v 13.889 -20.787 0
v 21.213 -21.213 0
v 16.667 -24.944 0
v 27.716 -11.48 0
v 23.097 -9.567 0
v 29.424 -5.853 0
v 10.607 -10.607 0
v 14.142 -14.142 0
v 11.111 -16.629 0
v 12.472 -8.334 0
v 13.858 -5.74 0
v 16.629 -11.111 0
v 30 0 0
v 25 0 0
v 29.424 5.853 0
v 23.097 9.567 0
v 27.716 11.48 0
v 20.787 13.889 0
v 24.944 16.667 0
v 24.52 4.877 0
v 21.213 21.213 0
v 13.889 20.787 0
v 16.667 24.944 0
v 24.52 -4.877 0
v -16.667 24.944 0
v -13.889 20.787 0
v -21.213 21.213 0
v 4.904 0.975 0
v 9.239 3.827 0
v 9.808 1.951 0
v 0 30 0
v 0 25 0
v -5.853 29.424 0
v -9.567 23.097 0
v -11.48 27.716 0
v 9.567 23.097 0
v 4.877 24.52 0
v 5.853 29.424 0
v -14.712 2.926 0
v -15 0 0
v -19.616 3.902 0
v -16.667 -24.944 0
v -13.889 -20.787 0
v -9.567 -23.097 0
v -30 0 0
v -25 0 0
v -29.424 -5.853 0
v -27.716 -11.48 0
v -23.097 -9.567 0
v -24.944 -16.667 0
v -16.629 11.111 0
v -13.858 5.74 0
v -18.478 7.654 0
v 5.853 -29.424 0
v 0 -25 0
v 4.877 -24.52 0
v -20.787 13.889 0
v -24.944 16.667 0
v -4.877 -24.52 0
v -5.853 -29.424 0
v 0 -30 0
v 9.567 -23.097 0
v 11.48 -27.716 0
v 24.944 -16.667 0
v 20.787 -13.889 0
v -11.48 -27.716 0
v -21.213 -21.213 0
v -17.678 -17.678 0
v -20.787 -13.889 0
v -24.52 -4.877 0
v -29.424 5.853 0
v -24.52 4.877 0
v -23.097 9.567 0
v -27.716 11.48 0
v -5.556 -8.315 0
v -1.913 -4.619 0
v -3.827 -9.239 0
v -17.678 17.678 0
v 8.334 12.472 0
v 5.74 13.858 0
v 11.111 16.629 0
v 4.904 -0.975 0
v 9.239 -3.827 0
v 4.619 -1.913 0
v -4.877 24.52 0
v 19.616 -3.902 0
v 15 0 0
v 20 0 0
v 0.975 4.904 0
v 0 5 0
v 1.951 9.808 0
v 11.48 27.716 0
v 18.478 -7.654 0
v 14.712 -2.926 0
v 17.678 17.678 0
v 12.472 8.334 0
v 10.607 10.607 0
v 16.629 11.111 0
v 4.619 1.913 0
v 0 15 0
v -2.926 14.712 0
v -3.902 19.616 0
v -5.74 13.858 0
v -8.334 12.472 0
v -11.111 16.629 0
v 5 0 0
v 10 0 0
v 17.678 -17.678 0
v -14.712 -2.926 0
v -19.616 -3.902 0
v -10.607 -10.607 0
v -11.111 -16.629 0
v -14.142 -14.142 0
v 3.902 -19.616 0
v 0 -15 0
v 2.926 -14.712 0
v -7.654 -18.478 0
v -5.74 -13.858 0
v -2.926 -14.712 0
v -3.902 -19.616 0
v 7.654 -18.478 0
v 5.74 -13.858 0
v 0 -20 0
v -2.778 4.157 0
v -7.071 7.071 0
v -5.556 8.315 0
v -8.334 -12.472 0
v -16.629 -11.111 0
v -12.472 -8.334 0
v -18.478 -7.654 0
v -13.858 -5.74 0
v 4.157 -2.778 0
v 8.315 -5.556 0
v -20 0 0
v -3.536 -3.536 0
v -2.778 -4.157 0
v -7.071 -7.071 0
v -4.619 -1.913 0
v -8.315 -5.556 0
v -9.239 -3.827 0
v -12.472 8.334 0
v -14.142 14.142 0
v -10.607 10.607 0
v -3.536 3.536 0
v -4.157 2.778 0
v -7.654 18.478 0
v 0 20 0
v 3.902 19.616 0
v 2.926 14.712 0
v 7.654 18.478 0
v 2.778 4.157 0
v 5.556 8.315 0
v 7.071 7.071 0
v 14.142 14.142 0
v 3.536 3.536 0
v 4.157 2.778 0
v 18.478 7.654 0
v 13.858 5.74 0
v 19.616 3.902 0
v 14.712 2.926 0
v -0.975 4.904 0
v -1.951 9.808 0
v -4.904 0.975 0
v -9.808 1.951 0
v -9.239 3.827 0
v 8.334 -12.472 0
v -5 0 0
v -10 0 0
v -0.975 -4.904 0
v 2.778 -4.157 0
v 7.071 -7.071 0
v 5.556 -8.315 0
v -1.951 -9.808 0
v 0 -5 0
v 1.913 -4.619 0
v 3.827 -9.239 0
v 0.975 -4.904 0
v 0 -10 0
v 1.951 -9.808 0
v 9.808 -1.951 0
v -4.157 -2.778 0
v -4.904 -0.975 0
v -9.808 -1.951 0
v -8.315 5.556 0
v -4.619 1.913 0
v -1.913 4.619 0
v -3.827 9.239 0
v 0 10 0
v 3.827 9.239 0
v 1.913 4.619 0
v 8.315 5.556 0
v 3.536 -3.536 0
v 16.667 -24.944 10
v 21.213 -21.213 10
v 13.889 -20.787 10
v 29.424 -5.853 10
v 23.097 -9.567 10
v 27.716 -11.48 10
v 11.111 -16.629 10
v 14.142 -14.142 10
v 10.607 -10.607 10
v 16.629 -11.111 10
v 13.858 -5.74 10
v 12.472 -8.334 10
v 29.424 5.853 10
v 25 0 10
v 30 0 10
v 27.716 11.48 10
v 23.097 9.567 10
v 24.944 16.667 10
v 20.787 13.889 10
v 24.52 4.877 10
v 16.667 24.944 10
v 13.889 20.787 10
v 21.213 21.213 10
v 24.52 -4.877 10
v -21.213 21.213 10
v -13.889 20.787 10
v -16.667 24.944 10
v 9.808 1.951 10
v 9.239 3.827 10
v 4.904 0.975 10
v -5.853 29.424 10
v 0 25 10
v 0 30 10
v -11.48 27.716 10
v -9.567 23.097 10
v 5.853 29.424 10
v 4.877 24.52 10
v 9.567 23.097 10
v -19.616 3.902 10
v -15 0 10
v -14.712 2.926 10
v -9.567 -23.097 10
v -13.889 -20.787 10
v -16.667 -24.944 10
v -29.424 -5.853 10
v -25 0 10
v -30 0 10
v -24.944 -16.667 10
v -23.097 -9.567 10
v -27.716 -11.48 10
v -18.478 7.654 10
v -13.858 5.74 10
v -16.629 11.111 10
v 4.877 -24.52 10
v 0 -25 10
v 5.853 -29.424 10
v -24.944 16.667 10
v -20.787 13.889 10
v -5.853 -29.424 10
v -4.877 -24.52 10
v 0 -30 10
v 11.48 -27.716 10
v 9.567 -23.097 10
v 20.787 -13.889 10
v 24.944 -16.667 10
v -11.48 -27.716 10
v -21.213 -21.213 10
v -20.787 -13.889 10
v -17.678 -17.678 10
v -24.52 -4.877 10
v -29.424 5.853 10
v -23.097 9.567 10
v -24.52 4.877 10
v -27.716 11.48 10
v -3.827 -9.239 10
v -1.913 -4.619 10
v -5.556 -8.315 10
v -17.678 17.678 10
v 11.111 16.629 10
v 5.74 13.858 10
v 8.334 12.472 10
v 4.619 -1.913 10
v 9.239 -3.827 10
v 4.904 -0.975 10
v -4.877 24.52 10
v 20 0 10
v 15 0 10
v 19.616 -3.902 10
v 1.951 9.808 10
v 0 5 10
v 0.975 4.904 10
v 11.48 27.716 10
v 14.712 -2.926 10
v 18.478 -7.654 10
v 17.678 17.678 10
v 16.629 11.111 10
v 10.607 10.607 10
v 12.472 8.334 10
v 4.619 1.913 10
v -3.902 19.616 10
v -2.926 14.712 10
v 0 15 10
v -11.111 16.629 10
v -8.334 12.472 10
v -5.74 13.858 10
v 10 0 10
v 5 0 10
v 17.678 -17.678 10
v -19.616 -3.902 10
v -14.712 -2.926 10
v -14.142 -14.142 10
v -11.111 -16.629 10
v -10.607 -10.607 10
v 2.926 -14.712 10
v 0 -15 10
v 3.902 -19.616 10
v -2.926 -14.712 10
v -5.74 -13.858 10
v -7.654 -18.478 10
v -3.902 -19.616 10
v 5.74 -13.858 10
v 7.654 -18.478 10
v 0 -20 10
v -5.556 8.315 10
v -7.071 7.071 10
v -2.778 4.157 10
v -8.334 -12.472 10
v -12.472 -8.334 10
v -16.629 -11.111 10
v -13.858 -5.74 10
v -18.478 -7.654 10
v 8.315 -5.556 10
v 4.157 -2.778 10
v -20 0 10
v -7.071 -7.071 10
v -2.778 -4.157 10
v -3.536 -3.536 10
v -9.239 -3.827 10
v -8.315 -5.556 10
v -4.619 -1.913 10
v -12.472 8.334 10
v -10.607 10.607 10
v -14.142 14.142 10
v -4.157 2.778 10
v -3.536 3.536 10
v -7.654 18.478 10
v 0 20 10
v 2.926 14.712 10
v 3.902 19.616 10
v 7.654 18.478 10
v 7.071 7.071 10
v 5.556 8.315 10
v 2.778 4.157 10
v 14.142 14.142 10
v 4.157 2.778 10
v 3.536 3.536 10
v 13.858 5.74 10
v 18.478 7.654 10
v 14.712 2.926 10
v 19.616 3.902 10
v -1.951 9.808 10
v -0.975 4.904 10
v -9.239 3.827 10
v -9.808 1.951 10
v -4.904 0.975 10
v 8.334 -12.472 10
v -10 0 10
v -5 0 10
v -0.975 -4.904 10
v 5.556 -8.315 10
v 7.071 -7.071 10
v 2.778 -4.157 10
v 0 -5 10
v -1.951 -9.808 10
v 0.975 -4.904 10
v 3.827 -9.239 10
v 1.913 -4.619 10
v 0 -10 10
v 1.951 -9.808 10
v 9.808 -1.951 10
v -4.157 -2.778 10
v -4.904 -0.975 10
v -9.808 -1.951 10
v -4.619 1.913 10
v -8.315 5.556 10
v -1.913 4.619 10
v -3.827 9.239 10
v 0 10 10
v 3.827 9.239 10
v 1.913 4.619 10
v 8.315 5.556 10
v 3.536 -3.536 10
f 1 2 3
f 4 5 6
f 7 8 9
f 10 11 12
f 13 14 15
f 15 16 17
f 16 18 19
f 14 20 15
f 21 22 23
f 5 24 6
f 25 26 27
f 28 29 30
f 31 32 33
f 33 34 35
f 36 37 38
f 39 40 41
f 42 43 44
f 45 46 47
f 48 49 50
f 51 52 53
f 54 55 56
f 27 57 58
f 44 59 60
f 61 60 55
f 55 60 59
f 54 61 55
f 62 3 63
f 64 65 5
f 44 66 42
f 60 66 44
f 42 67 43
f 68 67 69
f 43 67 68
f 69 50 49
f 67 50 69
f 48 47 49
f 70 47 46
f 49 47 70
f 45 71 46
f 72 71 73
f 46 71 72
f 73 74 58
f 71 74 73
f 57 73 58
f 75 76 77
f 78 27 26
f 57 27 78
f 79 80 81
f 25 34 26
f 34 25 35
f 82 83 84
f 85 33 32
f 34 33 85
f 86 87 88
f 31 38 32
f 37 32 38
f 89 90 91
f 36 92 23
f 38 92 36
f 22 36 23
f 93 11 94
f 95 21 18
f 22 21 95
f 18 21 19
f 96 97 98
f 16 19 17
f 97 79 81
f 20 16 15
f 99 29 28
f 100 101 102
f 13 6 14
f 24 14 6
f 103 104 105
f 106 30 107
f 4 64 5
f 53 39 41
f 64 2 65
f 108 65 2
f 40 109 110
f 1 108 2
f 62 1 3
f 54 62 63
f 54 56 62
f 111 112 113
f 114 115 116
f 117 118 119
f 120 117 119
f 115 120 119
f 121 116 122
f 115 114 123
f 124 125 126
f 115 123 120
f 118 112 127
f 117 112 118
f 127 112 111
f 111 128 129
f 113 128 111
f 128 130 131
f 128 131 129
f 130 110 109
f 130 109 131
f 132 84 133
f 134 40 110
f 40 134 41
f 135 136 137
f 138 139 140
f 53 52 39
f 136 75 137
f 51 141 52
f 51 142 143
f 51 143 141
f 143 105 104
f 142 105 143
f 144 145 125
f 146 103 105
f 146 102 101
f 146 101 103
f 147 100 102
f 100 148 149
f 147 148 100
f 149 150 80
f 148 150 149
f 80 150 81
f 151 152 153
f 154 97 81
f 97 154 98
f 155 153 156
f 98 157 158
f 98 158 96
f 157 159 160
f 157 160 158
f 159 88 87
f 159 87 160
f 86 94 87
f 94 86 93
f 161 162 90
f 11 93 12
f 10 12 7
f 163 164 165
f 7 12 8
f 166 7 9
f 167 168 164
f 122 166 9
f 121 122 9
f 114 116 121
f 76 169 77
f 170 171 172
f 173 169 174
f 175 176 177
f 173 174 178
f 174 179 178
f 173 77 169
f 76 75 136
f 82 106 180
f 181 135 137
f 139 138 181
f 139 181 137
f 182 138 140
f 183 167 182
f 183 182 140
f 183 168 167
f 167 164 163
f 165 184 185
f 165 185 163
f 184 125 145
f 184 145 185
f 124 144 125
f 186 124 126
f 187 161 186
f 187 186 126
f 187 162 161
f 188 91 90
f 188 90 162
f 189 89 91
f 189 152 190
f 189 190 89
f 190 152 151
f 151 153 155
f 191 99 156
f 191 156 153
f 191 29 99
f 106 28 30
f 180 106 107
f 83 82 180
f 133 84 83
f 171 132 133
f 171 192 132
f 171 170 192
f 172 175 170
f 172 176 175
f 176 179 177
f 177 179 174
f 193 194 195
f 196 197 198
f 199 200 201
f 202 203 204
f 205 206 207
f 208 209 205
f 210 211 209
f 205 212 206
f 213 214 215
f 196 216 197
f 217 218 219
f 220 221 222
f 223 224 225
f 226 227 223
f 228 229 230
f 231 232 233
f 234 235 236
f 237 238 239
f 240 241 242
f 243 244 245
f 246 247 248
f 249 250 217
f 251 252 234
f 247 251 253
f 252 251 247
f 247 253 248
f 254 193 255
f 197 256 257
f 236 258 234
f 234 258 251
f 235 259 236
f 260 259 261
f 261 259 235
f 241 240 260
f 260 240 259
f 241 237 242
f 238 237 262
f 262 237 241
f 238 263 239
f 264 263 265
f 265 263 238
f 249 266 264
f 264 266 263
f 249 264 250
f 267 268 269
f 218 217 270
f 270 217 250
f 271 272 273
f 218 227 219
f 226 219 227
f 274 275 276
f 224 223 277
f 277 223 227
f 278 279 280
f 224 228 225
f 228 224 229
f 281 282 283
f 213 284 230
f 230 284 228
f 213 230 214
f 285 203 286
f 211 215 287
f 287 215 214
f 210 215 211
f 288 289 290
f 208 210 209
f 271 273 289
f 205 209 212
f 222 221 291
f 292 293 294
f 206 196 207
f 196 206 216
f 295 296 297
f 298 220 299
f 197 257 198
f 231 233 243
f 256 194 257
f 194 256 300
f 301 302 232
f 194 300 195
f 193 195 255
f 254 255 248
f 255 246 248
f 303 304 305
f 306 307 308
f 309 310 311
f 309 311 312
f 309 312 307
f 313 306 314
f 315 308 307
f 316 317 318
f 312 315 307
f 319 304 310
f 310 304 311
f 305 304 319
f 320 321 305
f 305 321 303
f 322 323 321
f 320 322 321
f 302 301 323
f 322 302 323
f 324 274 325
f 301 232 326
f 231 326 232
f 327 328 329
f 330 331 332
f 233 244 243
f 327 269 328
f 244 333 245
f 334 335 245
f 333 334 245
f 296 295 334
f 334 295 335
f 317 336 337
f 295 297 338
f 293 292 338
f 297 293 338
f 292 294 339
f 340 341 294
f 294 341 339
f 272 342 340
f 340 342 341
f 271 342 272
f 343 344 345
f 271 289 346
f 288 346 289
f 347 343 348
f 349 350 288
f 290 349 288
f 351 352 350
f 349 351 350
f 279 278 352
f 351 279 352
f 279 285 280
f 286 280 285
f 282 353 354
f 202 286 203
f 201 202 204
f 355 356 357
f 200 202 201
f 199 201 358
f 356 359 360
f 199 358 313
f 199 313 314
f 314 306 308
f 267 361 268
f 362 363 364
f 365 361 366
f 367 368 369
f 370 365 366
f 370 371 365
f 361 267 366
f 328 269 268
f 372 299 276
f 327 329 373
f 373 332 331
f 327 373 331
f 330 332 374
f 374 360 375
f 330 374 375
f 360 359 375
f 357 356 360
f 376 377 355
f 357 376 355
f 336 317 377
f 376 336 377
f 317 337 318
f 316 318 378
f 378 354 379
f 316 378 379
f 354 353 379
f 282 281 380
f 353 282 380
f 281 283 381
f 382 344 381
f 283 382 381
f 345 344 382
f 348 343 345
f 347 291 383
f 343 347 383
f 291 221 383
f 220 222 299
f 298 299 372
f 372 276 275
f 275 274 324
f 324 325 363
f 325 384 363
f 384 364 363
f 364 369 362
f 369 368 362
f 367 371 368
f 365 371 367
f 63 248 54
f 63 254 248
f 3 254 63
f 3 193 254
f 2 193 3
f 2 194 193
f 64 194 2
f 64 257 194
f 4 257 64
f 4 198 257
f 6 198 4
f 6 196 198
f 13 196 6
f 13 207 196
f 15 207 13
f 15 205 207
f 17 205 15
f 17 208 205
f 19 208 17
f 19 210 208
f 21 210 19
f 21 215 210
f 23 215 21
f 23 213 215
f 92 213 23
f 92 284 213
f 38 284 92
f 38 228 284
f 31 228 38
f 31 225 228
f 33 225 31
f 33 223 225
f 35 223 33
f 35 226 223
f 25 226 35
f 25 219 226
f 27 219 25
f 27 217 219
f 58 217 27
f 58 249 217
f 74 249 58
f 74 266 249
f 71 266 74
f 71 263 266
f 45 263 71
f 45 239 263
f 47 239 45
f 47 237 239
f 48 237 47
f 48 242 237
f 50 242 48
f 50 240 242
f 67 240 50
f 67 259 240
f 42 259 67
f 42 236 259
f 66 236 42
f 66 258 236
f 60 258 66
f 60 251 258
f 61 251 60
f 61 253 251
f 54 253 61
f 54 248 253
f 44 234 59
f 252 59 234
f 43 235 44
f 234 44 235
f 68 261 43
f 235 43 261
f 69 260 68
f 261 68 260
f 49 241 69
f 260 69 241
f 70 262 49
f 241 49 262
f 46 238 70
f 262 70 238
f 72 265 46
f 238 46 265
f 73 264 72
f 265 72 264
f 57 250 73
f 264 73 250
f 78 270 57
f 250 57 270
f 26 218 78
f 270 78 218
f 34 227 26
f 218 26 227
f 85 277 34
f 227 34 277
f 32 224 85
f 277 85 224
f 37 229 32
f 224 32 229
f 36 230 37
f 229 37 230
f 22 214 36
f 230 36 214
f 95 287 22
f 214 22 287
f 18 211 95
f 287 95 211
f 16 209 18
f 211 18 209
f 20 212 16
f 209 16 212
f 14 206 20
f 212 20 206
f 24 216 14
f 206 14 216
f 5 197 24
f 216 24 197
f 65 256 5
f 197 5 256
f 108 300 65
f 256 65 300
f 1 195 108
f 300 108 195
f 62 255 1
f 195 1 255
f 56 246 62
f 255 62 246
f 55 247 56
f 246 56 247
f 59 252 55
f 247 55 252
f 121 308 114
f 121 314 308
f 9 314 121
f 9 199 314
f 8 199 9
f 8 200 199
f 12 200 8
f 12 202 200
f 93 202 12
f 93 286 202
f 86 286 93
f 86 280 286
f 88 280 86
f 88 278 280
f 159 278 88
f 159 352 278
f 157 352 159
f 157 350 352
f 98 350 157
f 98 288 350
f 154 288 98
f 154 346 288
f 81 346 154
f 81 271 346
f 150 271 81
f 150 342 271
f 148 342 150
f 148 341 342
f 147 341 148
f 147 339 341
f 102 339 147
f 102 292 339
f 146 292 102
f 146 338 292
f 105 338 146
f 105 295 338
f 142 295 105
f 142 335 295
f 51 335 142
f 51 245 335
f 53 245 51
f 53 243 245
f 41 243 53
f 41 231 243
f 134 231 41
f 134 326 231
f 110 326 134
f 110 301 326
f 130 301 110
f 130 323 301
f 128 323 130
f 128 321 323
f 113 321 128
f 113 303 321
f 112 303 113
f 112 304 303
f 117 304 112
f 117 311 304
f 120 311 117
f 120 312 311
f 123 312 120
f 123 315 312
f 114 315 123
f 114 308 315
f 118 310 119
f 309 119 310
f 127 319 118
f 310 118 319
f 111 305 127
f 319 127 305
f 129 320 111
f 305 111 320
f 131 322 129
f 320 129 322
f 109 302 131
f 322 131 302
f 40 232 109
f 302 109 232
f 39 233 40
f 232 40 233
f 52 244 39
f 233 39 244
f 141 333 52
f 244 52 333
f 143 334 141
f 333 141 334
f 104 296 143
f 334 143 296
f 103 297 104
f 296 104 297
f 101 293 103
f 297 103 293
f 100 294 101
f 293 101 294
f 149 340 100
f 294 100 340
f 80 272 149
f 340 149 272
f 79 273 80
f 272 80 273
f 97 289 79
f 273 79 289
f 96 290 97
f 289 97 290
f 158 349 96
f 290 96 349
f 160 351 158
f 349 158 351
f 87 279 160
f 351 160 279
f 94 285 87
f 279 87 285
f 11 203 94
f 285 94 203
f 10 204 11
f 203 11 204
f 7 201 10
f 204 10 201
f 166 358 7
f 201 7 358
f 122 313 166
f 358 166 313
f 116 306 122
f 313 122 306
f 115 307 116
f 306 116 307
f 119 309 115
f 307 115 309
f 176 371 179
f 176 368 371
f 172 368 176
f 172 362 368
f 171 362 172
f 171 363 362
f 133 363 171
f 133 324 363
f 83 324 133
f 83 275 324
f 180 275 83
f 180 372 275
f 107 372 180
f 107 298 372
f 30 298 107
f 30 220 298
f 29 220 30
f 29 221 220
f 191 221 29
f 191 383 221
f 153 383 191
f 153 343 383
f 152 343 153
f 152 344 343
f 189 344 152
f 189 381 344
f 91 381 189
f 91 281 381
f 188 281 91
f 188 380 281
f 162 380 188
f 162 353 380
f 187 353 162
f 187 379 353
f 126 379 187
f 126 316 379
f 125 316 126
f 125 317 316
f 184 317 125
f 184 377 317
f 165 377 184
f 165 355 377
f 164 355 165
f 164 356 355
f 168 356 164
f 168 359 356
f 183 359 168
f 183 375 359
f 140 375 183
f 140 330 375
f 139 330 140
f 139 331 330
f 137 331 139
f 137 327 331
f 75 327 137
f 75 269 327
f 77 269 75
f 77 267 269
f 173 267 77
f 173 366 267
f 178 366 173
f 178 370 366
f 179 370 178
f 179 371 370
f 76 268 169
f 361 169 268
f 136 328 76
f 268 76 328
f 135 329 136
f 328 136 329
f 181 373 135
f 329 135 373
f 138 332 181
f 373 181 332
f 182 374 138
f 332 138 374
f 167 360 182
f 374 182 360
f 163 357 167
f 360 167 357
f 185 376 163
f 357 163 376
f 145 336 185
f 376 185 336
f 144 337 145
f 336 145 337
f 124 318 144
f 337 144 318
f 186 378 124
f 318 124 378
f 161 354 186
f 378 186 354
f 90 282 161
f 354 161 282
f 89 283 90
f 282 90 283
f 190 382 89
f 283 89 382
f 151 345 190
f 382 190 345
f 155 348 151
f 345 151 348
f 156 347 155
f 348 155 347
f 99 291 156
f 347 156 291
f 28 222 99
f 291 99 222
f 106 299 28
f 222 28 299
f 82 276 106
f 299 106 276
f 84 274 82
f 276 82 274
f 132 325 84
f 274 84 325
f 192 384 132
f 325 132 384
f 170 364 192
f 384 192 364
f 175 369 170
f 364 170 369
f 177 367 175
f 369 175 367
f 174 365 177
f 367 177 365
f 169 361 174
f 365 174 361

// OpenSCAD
$fn=32;

linear_extrude(height=10) {
  difference() {
    circle(d=60);
    circle(d=50);
  }

  difference() {
    circle(d=40);
    circle(d=30);
  }

  difference() {
    circle(d=20);
    circle(d=10);
  }
}
